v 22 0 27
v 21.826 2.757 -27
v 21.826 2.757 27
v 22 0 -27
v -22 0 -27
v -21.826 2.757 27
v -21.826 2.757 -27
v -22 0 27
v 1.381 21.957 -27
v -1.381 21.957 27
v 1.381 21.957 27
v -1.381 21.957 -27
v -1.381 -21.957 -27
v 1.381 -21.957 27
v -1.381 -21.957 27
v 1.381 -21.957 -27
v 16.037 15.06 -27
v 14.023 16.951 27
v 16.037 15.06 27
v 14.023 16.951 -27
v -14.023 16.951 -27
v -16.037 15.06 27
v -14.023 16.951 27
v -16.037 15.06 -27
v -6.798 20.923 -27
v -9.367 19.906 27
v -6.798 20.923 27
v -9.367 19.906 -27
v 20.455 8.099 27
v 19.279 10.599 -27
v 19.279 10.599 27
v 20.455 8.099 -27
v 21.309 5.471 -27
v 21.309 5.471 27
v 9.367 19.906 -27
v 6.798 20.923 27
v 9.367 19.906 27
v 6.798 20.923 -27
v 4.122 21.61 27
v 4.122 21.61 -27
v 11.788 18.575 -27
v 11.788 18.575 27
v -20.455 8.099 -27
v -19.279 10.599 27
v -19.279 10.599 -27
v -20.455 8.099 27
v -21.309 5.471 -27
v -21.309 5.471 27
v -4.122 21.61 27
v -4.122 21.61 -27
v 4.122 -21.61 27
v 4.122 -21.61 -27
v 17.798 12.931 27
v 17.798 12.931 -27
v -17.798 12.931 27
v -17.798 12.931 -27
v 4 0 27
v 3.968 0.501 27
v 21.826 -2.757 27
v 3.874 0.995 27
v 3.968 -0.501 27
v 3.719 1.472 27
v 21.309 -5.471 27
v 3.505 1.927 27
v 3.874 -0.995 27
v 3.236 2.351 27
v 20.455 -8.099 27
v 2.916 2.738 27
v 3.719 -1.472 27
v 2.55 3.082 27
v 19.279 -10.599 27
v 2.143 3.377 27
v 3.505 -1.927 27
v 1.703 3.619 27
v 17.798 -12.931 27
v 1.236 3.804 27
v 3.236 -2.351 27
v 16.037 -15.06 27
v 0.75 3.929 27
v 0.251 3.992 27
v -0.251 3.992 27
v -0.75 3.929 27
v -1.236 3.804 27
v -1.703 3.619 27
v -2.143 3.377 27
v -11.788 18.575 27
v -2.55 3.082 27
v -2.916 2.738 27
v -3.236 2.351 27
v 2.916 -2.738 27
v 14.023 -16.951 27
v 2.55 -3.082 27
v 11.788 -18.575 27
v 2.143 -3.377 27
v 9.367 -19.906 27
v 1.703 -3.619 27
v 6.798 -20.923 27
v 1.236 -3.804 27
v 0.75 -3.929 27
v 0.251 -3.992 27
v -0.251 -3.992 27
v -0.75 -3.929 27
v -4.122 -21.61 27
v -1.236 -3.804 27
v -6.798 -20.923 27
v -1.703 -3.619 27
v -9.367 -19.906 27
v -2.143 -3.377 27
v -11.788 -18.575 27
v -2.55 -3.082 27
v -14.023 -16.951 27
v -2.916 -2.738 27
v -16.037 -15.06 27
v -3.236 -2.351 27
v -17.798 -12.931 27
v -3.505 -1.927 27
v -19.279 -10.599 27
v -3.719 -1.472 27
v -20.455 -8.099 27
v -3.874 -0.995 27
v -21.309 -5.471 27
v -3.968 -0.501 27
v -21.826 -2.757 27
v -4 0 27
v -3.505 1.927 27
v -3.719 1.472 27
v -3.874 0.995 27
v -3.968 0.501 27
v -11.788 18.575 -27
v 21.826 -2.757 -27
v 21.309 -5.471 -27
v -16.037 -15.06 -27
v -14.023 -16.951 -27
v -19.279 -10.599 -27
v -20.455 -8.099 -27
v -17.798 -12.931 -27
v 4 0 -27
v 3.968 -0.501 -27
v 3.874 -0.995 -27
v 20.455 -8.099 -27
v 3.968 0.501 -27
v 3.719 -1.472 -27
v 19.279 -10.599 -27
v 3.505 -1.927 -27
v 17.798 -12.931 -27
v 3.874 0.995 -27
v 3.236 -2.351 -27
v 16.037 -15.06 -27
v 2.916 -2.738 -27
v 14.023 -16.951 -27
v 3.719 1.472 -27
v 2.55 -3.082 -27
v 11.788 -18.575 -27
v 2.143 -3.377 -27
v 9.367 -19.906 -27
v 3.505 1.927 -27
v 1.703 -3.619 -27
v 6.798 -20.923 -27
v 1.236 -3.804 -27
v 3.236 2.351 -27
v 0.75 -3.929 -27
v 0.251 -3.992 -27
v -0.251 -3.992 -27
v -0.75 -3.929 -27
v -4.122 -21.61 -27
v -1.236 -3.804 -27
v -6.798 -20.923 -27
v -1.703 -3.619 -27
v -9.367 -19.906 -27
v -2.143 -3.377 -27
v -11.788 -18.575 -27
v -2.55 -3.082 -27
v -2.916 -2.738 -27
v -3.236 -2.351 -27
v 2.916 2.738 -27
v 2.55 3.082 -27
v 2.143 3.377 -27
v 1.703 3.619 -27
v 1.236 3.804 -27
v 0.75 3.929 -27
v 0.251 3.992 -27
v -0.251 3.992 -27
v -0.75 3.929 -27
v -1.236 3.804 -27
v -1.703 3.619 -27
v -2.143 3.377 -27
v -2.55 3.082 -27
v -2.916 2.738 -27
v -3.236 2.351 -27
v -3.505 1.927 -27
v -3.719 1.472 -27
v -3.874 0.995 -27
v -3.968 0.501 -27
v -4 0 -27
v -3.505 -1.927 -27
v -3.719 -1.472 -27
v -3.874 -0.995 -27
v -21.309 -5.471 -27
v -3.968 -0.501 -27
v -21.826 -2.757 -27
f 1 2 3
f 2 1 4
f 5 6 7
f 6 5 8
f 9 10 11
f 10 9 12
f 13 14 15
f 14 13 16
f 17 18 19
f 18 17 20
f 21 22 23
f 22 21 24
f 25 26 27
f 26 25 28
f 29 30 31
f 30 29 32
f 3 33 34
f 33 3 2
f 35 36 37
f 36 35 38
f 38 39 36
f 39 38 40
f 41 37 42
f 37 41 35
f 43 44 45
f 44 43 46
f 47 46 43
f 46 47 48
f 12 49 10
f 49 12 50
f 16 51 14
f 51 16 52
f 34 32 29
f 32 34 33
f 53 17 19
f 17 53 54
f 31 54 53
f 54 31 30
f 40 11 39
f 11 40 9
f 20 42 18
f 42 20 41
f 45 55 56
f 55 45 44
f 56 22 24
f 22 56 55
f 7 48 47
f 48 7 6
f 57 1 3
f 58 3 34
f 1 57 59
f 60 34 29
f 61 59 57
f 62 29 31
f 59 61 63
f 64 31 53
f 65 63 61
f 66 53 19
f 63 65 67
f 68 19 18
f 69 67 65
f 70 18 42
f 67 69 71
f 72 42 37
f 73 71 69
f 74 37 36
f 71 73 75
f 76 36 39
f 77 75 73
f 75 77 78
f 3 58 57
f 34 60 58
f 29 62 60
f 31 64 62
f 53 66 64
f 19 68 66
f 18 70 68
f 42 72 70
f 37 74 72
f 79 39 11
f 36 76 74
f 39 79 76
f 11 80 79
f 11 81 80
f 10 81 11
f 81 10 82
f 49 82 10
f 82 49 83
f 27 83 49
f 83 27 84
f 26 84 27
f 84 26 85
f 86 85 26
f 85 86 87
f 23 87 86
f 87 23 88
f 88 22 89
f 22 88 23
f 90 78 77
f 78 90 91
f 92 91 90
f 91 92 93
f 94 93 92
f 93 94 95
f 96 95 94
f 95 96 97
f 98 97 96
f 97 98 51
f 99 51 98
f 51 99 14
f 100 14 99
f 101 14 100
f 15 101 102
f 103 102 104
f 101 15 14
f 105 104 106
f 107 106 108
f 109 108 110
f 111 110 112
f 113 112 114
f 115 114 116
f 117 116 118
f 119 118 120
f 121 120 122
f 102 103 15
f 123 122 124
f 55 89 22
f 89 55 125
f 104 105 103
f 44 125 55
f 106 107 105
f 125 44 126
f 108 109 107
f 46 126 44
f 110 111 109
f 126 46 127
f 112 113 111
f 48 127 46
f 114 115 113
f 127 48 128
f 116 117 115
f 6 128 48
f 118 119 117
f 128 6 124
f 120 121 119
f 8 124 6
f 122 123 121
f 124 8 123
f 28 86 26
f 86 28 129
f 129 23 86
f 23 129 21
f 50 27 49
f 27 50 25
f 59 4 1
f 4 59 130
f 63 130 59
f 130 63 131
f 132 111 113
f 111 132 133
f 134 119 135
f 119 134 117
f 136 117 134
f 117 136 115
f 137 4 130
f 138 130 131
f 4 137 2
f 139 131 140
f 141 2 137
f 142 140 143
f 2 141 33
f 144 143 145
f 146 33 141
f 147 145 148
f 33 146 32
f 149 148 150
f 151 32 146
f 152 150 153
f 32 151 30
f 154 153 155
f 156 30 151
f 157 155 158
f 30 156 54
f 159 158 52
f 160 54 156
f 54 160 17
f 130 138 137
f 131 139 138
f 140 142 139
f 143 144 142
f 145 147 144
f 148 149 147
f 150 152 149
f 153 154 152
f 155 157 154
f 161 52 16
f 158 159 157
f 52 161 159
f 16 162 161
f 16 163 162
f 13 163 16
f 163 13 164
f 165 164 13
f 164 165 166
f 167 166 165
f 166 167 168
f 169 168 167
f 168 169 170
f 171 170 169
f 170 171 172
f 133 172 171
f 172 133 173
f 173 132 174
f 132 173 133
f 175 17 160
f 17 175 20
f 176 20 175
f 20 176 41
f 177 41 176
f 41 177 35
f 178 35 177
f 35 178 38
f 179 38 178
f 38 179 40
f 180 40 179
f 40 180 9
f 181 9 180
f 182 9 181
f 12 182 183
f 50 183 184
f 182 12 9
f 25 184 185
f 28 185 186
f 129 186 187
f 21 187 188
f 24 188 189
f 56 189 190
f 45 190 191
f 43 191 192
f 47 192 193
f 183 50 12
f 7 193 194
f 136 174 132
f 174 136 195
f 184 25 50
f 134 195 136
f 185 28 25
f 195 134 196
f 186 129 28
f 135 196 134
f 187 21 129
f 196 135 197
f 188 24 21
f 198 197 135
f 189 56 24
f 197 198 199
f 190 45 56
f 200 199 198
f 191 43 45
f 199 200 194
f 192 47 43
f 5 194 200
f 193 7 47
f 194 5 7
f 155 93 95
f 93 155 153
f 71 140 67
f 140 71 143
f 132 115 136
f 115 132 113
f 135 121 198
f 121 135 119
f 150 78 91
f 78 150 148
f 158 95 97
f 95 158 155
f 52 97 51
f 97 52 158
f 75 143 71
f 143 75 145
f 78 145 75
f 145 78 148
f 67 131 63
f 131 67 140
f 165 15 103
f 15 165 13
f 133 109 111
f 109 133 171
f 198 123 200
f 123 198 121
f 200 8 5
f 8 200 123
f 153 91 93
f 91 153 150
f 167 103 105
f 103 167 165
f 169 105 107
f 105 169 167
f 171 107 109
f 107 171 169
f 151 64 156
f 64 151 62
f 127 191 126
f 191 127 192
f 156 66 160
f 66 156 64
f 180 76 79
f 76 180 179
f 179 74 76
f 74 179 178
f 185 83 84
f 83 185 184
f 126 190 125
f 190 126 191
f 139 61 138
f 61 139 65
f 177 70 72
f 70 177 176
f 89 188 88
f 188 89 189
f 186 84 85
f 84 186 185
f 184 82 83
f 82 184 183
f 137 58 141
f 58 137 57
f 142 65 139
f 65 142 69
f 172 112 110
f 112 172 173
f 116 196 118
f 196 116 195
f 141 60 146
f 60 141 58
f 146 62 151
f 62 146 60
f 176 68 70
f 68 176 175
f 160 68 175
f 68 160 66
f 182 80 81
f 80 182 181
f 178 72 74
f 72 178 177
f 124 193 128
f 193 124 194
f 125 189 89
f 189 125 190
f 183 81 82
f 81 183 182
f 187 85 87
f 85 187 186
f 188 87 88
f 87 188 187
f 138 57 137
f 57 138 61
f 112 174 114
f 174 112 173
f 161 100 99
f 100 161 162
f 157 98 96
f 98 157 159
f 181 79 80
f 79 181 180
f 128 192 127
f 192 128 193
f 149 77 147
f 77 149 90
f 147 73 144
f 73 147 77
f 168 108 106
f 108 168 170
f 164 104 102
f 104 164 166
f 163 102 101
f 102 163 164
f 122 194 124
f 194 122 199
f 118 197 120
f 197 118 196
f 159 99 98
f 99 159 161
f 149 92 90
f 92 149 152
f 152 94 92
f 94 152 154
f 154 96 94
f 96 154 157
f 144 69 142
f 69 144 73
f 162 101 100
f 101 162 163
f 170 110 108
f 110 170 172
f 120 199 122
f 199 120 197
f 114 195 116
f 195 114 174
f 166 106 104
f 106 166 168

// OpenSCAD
$fn = 50;


difference() {
	union() {
		translate(v = [0, 0, -27.0000000000]) {
			cylinder(h = 54, r = 22.0000000000);
		}
	}
	union() {
		translate(v = [0, 0, -100.0000000000]) {
			cylinder(h = 200, r = 4);
		}
	}
}
